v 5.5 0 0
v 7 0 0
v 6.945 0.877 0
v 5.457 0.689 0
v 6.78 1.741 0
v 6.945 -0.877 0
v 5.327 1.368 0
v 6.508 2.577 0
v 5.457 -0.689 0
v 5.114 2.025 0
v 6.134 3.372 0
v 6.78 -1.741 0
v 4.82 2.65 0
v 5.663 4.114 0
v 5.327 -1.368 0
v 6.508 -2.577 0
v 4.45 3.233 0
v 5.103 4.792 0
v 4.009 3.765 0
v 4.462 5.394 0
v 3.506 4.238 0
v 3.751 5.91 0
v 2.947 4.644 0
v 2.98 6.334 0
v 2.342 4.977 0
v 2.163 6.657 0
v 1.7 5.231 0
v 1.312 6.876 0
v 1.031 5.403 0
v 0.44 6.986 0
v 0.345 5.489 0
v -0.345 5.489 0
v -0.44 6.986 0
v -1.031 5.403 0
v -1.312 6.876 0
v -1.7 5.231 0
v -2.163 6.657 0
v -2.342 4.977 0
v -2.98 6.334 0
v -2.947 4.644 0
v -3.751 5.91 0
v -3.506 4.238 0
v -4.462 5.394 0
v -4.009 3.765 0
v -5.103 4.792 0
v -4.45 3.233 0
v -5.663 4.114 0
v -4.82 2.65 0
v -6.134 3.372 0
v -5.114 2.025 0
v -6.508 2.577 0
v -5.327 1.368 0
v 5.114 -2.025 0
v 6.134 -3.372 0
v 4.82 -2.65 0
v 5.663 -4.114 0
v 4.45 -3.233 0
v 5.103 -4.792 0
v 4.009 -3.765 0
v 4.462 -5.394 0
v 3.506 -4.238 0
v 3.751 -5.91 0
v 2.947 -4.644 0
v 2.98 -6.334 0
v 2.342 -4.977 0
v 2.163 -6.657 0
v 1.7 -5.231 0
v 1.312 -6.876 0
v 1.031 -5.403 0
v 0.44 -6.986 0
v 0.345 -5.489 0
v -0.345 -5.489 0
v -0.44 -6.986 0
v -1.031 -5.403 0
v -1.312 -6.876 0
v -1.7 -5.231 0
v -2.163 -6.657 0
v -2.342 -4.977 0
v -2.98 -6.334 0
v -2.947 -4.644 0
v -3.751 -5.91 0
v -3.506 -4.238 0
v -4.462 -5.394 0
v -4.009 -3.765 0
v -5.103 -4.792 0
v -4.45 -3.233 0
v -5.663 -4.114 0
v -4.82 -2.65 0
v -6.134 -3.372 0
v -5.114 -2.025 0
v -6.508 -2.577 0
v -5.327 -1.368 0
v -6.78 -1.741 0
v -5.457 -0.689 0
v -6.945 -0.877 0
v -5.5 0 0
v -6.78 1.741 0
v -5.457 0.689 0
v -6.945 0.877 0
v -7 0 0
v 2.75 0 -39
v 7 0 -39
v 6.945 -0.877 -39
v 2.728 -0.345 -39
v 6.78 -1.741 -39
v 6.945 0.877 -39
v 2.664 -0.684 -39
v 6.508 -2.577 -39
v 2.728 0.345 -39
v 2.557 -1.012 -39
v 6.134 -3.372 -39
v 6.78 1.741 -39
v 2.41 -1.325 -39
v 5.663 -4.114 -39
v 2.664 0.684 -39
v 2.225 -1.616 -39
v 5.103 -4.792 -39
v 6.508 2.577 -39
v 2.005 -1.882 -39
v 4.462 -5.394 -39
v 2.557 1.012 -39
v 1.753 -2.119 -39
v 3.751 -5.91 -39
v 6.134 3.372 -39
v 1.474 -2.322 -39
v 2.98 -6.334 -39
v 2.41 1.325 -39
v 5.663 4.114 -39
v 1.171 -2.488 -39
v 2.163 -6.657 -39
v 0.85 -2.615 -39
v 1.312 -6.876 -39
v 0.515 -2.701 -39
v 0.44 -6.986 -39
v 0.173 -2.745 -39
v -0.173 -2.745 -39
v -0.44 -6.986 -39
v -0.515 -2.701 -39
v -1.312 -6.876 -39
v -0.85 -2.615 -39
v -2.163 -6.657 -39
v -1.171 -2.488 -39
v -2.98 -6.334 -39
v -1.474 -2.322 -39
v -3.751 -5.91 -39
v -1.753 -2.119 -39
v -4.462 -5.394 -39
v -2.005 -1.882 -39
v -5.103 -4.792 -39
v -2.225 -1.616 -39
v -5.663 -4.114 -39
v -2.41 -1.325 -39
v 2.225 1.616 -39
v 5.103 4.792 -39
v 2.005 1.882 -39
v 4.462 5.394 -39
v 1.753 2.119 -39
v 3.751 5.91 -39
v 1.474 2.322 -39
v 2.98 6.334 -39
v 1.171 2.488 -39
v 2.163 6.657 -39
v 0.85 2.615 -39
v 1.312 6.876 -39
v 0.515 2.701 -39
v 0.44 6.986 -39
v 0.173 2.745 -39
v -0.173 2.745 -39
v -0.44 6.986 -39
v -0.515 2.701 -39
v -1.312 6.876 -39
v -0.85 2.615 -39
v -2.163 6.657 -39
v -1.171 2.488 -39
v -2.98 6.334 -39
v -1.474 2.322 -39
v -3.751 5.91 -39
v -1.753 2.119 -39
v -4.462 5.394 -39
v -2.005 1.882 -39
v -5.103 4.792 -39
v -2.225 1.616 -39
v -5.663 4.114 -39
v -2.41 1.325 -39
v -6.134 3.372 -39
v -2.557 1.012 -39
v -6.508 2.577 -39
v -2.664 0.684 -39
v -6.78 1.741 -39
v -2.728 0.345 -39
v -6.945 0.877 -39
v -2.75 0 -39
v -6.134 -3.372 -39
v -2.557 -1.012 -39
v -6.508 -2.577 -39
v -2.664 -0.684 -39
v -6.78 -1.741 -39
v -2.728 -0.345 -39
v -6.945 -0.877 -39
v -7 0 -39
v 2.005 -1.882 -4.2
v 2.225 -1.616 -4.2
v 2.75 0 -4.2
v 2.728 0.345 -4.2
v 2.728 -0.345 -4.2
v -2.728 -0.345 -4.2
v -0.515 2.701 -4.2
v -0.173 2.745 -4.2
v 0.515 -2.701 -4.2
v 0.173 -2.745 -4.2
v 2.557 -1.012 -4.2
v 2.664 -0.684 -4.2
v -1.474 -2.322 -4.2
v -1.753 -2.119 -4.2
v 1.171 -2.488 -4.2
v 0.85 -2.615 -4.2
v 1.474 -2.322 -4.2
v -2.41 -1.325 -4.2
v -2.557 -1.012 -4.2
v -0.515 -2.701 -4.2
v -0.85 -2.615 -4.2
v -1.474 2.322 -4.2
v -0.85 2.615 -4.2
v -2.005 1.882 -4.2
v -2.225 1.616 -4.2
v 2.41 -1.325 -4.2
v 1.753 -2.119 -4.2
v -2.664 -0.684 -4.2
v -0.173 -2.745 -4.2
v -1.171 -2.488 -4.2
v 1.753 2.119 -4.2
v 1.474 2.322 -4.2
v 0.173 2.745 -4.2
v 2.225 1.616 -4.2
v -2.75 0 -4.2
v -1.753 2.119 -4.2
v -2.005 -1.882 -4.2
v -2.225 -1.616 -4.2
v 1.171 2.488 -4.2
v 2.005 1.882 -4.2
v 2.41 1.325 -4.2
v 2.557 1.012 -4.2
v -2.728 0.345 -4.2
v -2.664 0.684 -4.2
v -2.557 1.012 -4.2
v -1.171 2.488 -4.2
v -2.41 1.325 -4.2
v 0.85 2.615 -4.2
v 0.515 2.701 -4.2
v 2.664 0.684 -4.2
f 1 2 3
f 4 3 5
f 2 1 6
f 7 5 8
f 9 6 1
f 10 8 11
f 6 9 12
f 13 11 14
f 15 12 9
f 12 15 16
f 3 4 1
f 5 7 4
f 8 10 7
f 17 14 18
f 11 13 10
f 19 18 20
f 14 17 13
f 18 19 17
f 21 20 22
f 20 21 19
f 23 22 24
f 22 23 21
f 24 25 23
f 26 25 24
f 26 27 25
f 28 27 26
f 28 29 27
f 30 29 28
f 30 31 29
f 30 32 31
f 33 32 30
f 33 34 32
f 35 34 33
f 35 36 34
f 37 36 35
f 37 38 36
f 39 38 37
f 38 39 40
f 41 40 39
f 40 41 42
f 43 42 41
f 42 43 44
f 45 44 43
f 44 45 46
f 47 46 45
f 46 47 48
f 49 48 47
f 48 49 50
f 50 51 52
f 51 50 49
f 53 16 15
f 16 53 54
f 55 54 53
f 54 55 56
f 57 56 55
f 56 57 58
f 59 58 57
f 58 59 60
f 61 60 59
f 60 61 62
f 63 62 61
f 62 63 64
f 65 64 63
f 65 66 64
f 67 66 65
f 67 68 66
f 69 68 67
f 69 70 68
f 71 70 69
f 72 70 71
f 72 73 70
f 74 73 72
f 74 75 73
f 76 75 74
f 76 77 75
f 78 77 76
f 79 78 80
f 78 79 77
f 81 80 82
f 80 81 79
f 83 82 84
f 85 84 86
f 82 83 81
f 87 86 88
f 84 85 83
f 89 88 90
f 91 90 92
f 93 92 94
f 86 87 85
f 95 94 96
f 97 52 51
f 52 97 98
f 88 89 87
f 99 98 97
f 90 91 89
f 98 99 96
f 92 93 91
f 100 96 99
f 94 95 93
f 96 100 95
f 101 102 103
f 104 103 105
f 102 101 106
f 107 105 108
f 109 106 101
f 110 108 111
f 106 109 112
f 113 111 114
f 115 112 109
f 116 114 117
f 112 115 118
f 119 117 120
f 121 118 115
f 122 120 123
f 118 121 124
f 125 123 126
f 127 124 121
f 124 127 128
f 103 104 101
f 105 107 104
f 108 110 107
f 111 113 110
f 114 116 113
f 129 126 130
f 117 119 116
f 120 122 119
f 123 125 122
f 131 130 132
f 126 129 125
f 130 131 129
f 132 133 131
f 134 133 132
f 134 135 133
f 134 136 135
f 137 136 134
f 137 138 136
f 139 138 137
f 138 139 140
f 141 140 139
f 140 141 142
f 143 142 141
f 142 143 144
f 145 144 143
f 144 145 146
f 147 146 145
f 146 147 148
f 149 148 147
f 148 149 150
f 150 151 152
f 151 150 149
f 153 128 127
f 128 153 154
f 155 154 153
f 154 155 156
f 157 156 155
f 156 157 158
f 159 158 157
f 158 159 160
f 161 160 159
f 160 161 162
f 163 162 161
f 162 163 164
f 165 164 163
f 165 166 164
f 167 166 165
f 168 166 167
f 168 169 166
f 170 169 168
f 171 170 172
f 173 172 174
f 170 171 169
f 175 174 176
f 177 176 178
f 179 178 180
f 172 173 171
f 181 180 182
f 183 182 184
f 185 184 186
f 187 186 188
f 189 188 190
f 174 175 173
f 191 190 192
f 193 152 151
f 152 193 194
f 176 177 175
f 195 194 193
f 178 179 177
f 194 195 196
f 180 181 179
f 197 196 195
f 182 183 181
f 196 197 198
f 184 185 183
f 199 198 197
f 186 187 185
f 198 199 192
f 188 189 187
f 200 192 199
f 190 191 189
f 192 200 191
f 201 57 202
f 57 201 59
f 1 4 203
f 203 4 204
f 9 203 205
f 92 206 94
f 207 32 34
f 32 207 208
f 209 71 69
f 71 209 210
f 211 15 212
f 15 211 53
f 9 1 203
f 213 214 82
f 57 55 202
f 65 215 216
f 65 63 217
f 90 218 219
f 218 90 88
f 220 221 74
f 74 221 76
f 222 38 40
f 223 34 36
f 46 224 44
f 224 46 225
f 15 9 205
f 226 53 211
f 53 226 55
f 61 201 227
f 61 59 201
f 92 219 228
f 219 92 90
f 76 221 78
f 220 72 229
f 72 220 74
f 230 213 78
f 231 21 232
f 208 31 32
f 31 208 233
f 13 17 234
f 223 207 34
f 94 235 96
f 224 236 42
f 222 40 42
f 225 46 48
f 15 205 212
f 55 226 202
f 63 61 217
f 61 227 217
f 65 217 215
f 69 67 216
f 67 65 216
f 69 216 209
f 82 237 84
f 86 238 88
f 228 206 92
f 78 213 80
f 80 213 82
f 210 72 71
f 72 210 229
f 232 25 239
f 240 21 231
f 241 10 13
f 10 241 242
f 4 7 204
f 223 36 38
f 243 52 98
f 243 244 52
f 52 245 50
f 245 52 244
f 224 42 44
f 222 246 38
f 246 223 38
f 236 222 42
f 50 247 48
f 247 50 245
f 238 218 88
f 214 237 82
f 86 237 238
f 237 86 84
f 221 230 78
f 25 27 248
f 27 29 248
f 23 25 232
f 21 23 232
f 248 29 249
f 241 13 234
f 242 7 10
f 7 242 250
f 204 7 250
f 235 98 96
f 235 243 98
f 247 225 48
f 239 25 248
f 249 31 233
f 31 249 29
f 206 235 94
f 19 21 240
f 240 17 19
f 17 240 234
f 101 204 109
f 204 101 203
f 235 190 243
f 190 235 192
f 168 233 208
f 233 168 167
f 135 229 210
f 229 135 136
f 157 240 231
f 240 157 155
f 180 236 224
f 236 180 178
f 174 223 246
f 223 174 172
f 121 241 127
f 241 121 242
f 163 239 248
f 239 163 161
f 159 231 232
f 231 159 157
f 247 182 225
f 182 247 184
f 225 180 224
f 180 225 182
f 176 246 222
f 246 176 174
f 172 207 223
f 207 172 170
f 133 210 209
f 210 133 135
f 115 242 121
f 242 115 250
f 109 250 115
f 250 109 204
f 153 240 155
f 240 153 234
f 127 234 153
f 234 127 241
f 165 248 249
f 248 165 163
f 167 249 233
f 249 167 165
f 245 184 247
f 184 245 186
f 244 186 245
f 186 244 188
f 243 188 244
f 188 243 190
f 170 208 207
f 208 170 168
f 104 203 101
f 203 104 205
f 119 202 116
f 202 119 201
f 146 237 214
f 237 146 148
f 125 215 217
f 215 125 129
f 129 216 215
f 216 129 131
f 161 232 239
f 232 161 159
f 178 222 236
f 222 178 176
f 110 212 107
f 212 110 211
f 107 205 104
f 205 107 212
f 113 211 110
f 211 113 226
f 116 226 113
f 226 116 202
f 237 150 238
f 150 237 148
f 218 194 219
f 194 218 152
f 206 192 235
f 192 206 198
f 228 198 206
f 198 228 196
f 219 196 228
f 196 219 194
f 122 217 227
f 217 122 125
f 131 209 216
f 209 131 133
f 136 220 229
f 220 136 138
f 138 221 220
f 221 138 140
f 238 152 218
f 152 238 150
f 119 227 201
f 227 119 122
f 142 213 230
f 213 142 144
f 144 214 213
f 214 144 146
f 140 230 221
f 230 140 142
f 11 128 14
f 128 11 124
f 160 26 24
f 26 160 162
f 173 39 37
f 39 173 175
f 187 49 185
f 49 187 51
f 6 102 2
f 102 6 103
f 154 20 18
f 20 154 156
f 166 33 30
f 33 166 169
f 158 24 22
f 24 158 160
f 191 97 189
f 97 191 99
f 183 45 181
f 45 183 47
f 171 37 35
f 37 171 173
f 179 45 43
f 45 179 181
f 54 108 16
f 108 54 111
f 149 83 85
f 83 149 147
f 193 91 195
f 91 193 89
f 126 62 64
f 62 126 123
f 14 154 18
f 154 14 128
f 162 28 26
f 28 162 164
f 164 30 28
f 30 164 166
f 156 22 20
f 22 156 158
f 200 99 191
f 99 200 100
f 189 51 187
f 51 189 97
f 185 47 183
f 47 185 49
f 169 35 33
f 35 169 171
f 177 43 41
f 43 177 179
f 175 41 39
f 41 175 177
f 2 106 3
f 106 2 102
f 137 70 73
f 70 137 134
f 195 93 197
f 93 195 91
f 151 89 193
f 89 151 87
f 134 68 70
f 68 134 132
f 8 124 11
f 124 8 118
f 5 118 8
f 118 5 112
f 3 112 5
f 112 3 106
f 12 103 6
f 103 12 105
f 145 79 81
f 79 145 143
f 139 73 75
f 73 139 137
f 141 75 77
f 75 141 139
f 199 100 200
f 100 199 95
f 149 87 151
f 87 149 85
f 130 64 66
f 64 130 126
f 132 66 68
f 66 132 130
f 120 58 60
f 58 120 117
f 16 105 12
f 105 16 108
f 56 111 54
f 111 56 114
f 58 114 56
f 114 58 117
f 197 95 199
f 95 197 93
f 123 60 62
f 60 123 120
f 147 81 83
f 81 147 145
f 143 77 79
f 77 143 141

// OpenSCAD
$fn = 50;


difference() {
	union() {
		translate(v = [0, 0, -39.0000000000]) {
			cylinder(h = 39, r = 7.0000000000);
		}
		cylinder(h = 0, r = 13.0000000000);
	}
	union() {
		translate(v = [0, 0, 0]) {
			rotate(a = [0, 0, 0]) {
				difference() {
					union() {
						#translate(v = [0, 0, -39.0000000000]) {
							cylinder(h = 39, r = 2.2500000000);
						}
						#translate(v = [0, 0, -4.2000000000]) {
							cylinder(h = 4.2000000000, r = 7.0000000000, r1 = 2.7500000000, r2 = 5.5000000000);
						}
						#translate(v = [0, 0, -39.0000000000]) {
							cylinder(h = 39, r = 2.7500000000);
						}
						#translate(v = [0, 0, -39.0000000000]) {
							cylinder(h = 39, r = 2.2500000000);
						}
					}
					union();
				}
			}
		}
	}
}
